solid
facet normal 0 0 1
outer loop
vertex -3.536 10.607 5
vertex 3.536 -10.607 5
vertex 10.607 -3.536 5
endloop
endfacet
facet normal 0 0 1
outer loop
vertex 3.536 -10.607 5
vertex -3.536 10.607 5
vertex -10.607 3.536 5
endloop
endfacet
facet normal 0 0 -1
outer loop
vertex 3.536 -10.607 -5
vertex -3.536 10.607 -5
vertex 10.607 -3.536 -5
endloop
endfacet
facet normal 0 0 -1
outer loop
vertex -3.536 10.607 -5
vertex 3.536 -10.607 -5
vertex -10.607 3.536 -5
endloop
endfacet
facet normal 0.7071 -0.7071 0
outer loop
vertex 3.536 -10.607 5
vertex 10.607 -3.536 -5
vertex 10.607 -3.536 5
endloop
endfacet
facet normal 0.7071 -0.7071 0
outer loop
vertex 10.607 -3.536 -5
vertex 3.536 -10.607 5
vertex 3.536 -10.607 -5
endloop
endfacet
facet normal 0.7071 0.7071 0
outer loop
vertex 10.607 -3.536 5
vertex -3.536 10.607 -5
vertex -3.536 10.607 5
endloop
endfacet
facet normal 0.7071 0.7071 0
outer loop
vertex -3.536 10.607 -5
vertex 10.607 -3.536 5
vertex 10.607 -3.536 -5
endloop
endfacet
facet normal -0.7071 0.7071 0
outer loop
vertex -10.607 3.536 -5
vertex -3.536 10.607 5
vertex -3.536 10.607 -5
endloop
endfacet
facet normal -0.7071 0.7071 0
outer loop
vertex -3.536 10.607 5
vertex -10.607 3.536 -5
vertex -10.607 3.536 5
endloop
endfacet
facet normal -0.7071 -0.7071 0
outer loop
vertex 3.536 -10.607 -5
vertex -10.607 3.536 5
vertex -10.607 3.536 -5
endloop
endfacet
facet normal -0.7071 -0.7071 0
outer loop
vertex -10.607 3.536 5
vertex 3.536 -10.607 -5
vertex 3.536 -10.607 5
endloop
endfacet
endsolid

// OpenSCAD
//difference() {
//  sphere(7, center=true);
rotate([0, 0, 45])
cube([10, 20, 10], center=true);
//}
